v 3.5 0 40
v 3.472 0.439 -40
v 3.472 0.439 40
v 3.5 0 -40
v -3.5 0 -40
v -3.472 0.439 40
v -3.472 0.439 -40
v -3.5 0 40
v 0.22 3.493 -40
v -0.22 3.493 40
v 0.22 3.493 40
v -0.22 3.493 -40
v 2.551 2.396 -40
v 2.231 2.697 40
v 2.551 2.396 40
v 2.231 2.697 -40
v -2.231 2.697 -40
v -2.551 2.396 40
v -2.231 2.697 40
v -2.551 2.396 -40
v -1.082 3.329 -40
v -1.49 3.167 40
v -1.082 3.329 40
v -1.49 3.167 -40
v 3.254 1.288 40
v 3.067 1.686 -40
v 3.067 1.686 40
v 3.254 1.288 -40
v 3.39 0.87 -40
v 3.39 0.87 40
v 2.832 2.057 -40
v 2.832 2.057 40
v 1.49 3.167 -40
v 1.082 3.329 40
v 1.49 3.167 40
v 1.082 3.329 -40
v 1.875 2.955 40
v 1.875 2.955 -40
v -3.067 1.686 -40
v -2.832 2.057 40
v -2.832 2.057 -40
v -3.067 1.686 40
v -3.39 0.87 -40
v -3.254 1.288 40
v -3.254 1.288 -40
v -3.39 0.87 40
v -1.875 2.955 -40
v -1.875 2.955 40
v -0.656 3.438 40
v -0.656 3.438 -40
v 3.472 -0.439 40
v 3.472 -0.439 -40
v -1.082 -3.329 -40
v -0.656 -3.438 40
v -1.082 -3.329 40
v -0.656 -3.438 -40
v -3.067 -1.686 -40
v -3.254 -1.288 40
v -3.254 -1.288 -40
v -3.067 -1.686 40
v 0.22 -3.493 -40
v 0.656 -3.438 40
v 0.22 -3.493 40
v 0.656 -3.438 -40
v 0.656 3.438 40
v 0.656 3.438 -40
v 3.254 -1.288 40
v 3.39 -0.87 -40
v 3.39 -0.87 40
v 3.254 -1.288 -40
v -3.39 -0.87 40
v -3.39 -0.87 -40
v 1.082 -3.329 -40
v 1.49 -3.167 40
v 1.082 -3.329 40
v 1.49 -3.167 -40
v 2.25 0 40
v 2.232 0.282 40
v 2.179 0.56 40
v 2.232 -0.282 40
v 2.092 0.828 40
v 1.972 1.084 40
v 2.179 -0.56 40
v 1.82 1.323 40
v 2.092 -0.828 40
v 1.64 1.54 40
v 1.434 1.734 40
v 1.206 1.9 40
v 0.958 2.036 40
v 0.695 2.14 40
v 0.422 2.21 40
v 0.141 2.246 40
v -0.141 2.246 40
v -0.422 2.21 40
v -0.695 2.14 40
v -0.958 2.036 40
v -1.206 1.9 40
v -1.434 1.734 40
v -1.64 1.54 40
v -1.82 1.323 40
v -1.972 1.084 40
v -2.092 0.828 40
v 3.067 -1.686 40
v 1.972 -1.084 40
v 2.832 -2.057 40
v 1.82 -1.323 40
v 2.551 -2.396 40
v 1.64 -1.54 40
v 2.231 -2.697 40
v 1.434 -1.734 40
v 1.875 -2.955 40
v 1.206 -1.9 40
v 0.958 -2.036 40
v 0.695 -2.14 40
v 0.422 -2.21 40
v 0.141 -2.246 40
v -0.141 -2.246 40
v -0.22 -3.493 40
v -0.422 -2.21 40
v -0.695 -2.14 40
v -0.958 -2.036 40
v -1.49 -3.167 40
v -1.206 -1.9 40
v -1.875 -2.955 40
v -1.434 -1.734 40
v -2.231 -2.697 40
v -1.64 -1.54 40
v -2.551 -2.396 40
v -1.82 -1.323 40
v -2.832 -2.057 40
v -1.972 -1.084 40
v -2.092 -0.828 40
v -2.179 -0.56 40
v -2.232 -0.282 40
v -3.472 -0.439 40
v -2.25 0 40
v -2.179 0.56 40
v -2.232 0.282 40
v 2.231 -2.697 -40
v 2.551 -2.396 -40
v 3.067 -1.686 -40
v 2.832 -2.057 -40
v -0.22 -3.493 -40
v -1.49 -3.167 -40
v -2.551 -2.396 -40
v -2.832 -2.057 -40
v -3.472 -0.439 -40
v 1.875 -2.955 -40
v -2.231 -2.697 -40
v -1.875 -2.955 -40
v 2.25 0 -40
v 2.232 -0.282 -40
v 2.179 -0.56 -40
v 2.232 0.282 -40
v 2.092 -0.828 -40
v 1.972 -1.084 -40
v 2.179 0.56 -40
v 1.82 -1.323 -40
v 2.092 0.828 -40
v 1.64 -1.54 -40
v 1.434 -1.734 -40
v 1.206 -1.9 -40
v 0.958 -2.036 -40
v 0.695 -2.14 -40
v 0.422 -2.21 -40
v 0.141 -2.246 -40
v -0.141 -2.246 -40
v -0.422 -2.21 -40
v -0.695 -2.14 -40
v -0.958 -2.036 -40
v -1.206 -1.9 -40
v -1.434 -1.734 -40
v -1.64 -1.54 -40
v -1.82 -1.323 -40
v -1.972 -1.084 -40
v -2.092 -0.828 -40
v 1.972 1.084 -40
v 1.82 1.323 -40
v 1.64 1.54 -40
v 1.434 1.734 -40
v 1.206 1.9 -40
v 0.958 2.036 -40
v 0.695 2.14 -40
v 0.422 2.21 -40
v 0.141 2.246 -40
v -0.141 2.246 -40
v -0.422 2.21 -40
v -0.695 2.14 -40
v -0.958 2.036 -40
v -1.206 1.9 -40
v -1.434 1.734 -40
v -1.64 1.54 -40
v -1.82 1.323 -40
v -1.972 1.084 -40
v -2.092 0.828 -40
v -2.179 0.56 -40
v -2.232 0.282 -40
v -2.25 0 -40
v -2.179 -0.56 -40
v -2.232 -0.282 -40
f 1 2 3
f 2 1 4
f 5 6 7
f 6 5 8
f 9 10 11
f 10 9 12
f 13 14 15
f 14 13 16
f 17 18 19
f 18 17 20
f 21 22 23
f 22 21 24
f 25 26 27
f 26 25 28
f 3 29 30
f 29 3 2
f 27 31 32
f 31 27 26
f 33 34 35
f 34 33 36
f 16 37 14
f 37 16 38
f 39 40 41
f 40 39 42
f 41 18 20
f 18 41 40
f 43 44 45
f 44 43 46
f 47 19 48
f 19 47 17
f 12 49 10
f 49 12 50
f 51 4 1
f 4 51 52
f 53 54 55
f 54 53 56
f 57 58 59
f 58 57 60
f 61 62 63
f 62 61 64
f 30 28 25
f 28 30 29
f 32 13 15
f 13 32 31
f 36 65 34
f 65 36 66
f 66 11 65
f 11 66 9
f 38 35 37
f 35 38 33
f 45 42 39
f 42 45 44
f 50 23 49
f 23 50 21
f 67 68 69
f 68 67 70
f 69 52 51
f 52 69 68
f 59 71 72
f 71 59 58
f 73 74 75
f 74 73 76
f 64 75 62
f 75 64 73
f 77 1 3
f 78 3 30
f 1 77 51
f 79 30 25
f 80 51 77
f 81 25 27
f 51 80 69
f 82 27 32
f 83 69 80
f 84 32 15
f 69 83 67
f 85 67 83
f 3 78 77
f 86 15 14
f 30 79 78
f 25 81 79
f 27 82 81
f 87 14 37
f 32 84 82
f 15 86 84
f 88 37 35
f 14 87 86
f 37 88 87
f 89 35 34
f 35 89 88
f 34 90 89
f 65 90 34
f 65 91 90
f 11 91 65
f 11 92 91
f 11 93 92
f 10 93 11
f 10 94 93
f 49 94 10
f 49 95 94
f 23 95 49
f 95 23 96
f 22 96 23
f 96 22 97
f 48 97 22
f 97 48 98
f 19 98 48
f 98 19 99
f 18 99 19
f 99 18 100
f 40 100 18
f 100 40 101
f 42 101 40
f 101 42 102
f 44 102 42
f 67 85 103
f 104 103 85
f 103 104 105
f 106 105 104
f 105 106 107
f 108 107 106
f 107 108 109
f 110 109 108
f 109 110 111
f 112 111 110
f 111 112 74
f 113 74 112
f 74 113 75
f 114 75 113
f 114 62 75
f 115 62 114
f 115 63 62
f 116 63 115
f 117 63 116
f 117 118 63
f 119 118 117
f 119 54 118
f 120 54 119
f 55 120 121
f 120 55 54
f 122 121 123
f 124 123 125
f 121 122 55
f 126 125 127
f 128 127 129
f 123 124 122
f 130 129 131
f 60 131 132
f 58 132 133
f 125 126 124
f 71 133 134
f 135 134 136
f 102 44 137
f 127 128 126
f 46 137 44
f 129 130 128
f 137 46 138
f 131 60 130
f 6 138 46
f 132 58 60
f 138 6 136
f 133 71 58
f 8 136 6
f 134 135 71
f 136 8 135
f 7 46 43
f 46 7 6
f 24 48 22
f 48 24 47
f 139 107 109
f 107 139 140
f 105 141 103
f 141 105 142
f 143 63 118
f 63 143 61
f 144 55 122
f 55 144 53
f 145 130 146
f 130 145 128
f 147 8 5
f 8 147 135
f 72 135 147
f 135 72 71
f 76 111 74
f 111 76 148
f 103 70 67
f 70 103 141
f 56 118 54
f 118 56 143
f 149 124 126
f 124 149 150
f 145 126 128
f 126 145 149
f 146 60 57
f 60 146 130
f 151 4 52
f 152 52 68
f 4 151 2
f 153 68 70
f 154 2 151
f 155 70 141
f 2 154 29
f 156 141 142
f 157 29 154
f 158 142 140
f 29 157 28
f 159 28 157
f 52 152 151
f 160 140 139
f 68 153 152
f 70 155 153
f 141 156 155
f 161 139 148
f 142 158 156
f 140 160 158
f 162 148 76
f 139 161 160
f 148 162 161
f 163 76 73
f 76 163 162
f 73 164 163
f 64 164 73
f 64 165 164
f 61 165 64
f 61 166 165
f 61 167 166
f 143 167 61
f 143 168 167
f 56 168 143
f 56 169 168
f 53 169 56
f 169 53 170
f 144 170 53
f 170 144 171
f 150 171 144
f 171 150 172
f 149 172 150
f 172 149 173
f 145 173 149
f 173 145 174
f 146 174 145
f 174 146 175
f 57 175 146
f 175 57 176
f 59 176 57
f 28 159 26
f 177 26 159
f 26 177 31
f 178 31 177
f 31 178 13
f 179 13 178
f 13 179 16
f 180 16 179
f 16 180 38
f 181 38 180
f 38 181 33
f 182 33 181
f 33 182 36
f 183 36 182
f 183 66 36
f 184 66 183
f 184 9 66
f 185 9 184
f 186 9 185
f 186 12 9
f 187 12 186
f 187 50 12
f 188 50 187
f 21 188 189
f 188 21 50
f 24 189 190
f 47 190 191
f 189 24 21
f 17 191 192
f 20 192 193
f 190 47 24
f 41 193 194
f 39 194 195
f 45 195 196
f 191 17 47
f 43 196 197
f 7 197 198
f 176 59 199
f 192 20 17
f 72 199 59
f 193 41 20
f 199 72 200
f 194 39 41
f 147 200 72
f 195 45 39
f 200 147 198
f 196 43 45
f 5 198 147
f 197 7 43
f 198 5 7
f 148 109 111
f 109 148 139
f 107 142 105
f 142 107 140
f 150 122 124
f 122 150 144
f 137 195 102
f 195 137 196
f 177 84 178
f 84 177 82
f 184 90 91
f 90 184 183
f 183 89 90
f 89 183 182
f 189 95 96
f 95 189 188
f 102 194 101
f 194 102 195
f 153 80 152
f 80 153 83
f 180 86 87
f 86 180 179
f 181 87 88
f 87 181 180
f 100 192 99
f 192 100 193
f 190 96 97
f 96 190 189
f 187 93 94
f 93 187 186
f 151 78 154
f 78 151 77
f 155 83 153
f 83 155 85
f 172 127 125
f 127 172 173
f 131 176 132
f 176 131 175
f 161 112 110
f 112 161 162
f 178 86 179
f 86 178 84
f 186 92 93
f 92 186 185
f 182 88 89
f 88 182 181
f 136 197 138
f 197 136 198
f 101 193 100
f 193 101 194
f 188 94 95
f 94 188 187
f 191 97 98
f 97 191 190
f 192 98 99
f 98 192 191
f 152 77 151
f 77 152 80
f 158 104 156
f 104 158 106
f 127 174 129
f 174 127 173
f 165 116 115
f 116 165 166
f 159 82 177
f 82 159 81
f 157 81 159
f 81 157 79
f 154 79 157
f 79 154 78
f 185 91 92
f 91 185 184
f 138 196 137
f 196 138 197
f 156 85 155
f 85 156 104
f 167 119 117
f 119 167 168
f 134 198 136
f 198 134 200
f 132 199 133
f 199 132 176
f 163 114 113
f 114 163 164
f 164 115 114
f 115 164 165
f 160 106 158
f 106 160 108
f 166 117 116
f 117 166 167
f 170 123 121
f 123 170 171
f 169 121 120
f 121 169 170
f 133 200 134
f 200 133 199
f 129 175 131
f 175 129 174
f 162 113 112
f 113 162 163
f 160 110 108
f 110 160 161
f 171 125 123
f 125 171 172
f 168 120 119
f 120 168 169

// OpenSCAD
$fn = 50;


difference() {
	union() {
		translate(v = [0, 0, -40.0000000000]) {
			cylinder(h = 80, r = 3.5000000000);
		}
	}
	union() {
		translate(v = [0, 0, -100.0000000000]) {
			cylinder(h = 200, r = 2.2500000000);
		}
	}
}
